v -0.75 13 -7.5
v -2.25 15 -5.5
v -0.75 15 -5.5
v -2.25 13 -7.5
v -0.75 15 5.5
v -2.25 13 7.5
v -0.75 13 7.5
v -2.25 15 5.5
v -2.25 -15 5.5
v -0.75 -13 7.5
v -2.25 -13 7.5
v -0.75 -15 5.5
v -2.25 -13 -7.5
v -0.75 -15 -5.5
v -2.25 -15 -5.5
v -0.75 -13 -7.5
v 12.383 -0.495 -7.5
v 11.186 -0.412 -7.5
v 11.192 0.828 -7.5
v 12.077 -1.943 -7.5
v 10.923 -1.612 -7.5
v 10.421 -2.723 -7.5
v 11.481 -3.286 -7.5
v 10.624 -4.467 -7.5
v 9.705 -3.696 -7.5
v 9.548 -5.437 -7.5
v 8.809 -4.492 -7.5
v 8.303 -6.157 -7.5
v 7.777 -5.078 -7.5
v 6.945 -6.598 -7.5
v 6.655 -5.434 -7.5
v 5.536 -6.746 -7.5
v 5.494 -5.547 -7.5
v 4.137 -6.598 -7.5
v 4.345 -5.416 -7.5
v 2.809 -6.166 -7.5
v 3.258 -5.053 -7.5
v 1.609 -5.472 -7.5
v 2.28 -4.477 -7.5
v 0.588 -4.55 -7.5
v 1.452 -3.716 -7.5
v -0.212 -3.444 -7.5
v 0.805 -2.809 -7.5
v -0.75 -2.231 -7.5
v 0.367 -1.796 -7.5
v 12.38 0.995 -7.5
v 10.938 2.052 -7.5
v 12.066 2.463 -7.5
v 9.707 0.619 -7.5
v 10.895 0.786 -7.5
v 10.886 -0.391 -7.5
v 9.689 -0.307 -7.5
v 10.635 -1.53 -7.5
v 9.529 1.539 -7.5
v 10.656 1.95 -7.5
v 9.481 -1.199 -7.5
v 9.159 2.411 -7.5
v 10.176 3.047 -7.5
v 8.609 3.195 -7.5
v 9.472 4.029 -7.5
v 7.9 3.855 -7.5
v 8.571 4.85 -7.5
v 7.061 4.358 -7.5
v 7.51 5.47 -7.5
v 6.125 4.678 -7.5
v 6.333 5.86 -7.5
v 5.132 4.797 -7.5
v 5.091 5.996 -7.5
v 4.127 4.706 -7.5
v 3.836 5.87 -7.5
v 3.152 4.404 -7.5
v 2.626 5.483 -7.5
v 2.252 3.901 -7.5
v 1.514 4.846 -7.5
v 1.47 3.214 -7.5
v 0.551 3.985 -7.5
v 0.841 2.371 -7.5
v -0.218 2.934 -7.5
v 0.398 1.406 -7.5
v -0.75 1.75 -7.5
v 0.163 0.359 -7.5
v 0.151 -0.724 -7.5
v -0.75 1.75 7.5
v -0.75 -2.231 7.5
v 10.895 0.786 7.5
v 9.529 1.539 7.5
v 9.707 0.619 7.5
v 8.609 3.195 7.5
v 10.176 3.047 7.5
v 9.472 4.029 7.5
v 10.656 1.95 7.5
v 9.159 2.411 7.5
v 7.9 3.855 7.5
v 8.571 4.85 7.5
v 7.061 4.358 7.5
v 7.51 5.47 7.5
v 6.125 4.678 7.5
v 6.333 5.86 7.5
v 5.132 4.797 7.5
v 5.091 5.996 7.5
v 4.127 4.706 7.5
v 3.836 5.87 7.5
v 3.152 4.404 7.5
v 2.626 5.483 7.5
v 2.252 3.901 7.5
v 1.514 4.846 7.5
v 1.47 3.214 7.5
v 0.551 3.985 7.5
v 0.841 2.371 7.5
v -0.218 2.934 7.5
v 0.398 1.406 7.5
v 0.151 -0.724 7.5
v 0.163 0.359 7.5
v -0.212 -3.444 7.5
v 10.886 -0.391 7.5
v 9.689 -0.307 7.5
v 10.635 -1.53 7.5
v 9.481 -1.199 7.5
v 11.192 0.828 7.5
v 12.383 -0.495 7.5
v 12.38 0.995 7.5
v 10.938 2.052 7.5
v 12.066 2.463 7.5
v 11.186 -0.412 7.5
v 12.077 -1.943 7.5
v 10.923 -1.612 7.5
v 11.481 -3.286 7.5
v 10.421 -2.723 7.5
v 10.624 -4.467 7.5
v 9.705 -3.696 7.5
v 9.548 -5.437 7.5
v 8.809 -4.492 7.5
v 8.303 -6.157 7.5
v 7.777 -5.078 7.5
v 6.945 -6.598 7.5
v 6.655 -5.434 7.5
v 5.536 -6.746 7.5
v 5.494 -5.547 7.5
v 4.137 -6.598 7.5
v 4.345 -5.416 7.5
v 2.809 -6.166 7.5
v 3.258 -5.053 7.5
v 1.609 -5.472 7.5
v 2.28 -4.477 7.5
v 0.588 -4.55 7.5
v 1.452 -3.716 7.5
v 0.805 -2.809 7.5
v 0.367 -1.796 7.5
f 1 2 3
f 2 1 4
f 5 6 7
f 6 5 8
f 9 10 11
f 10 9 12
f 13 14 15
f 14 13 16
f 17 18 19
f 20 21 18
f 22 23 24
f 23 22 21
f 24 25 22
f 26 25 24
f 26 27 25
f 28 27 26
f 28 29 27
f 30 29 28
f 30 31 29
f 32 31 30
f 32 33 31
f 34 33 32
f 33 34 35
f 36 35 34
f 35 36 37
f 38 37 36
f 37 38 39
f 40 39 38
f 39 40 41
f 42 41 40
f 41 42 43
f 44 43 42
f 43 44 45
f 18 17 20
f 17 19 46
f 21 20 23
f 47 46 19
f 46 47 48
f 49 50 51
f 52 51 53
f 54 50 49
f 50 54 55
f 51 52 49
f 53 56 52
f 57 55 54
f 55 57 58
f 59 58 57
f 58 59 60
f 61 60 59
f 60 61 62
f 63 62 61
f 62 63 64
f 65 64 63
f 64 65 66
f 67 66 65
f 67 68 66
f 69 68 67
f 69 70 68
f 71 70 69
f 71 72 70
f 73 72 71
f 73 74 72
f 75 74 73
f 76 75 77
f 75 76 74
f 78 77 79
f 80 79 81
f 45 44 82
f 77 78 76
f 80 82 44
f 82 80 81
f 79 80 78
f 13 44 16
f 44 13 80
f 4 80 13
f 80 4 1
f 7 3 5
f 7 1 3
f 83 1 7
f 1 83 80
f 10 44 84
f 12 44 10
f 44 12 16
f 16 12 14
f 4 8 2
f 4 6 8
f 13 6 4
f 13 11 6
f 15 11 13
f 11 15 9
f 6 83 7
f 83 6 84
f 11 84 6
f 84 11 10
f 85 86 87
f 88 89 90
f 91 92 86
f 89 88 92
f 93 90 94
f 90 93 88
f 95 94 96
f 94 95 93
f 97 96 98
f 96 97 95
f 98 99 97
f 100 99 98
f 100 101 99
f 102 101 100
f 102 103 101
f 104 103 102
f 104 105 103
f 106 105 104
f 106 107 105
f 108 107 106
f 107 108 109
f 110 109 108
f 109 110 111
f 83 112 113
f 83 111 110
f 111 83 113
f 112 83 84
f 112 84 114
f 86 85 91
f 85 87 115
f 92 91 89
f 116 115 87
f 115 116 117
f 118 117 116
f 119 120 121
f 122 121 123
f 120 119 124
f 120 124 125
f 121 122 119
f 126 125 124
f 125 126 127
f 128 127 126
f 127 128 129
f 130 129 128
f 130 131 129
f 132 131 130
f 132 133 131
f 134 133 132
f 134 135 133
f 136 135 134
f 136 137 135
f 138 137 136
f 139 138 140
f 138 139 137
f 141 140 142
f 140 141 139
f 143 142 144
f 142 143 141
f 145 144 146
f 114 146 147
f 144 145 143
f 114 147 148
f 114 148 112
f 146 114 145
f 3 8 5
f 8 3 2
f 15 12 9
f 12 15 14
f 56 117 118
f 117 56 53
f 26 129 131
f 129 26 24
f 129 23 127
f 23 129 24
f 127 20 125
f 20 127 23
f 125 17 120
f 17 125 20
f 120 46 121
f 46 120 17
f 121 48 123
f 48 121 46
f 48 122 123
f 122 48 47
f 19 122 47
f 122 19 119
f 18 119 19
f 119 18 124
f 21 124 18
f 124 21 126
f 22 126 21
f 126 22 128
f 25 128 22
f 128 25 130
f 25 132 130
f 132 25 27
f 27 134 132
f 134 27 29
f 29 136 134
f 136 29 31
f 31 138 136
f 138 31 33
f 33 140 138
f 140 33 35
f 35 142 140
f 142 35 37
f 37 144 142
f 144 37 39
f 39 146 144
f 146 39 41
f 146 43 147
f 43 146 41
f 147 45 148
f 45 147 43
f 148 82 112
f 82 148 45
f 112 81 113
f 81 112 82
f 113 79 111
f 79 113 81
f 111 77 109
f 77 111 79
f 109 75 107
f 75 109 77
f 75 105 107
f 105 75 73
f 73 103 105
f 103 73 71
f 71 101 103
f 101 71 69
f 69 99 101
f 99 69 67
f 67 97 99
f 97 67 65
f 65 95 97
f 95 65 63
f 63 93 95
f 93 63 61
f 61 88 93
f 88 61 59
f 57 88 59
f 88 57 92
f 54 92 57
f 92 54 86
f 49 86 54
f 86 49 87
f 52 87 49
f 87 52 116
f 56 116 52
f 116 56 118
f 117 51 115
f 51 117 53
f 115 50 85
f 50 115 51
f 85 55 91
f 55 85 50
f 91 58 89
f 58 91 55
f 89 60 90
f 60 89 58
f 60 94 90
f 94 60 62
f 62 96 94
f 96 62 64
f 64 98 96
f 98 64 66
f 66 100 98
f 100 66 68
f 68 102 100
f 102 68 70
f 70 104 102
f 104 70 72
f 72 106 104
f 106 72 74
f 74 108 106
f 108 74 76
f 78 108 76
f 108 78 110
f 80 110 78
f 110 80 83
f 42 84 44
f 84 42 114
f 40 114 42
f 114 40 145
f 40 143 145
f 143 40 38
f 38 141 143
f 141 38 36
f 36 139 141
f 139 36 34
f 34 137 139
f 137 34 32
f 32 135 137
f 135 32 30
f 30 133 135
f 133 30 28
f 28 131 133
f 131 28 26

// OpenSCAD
include <BOSL/constants.scad>
use <BOSL/transforms.scad>
use <BOSL/shapes.scad>
use <archimedean_spiral.scad>

$fn=100;

clip();
//hemisphere();

module clip() {
  dia=12;
  base=[15,30,1.5];
  rotate([0,90]) union() {
    // back
    zmove(-base[2]) cuboid(size=base,chamfer=2,edges=EDGES_Z_ALL);
    // clip
    translate([base[0]/2,0,(dia-1.4)/2]) rotate([0,-90]) rotate(20) difference() {
      linear_extrude(base[0])     archimedean_spiral(spirals=4.0,thickness=1.2,rmax=dia/2);
      zmove(-1) {
        linear_extrude(base[0]+2) archimedean_spiral(spirals=2.9,thickness=1.4,rmax=0.7*dia/2);
        cylinder(h=base[0]+2,d=5);
      }
    }
  }
}

module hemisphere() {
  dia=28;
  rad=dia/2;
  difference() {
    // sphere
    top_half() staggered_sphere(d=dia);
    // cable hole
    zmove(rad-5.5) teardrop(d=8, l=dia, ang=45);
    // chamfer
    r=sqrt(rad*rad-1)+0.1;
    zmove(-0.001) tube(h=1, or1=rad+10, or2=r, ir1=r-1, ir2=r);
  }
}
